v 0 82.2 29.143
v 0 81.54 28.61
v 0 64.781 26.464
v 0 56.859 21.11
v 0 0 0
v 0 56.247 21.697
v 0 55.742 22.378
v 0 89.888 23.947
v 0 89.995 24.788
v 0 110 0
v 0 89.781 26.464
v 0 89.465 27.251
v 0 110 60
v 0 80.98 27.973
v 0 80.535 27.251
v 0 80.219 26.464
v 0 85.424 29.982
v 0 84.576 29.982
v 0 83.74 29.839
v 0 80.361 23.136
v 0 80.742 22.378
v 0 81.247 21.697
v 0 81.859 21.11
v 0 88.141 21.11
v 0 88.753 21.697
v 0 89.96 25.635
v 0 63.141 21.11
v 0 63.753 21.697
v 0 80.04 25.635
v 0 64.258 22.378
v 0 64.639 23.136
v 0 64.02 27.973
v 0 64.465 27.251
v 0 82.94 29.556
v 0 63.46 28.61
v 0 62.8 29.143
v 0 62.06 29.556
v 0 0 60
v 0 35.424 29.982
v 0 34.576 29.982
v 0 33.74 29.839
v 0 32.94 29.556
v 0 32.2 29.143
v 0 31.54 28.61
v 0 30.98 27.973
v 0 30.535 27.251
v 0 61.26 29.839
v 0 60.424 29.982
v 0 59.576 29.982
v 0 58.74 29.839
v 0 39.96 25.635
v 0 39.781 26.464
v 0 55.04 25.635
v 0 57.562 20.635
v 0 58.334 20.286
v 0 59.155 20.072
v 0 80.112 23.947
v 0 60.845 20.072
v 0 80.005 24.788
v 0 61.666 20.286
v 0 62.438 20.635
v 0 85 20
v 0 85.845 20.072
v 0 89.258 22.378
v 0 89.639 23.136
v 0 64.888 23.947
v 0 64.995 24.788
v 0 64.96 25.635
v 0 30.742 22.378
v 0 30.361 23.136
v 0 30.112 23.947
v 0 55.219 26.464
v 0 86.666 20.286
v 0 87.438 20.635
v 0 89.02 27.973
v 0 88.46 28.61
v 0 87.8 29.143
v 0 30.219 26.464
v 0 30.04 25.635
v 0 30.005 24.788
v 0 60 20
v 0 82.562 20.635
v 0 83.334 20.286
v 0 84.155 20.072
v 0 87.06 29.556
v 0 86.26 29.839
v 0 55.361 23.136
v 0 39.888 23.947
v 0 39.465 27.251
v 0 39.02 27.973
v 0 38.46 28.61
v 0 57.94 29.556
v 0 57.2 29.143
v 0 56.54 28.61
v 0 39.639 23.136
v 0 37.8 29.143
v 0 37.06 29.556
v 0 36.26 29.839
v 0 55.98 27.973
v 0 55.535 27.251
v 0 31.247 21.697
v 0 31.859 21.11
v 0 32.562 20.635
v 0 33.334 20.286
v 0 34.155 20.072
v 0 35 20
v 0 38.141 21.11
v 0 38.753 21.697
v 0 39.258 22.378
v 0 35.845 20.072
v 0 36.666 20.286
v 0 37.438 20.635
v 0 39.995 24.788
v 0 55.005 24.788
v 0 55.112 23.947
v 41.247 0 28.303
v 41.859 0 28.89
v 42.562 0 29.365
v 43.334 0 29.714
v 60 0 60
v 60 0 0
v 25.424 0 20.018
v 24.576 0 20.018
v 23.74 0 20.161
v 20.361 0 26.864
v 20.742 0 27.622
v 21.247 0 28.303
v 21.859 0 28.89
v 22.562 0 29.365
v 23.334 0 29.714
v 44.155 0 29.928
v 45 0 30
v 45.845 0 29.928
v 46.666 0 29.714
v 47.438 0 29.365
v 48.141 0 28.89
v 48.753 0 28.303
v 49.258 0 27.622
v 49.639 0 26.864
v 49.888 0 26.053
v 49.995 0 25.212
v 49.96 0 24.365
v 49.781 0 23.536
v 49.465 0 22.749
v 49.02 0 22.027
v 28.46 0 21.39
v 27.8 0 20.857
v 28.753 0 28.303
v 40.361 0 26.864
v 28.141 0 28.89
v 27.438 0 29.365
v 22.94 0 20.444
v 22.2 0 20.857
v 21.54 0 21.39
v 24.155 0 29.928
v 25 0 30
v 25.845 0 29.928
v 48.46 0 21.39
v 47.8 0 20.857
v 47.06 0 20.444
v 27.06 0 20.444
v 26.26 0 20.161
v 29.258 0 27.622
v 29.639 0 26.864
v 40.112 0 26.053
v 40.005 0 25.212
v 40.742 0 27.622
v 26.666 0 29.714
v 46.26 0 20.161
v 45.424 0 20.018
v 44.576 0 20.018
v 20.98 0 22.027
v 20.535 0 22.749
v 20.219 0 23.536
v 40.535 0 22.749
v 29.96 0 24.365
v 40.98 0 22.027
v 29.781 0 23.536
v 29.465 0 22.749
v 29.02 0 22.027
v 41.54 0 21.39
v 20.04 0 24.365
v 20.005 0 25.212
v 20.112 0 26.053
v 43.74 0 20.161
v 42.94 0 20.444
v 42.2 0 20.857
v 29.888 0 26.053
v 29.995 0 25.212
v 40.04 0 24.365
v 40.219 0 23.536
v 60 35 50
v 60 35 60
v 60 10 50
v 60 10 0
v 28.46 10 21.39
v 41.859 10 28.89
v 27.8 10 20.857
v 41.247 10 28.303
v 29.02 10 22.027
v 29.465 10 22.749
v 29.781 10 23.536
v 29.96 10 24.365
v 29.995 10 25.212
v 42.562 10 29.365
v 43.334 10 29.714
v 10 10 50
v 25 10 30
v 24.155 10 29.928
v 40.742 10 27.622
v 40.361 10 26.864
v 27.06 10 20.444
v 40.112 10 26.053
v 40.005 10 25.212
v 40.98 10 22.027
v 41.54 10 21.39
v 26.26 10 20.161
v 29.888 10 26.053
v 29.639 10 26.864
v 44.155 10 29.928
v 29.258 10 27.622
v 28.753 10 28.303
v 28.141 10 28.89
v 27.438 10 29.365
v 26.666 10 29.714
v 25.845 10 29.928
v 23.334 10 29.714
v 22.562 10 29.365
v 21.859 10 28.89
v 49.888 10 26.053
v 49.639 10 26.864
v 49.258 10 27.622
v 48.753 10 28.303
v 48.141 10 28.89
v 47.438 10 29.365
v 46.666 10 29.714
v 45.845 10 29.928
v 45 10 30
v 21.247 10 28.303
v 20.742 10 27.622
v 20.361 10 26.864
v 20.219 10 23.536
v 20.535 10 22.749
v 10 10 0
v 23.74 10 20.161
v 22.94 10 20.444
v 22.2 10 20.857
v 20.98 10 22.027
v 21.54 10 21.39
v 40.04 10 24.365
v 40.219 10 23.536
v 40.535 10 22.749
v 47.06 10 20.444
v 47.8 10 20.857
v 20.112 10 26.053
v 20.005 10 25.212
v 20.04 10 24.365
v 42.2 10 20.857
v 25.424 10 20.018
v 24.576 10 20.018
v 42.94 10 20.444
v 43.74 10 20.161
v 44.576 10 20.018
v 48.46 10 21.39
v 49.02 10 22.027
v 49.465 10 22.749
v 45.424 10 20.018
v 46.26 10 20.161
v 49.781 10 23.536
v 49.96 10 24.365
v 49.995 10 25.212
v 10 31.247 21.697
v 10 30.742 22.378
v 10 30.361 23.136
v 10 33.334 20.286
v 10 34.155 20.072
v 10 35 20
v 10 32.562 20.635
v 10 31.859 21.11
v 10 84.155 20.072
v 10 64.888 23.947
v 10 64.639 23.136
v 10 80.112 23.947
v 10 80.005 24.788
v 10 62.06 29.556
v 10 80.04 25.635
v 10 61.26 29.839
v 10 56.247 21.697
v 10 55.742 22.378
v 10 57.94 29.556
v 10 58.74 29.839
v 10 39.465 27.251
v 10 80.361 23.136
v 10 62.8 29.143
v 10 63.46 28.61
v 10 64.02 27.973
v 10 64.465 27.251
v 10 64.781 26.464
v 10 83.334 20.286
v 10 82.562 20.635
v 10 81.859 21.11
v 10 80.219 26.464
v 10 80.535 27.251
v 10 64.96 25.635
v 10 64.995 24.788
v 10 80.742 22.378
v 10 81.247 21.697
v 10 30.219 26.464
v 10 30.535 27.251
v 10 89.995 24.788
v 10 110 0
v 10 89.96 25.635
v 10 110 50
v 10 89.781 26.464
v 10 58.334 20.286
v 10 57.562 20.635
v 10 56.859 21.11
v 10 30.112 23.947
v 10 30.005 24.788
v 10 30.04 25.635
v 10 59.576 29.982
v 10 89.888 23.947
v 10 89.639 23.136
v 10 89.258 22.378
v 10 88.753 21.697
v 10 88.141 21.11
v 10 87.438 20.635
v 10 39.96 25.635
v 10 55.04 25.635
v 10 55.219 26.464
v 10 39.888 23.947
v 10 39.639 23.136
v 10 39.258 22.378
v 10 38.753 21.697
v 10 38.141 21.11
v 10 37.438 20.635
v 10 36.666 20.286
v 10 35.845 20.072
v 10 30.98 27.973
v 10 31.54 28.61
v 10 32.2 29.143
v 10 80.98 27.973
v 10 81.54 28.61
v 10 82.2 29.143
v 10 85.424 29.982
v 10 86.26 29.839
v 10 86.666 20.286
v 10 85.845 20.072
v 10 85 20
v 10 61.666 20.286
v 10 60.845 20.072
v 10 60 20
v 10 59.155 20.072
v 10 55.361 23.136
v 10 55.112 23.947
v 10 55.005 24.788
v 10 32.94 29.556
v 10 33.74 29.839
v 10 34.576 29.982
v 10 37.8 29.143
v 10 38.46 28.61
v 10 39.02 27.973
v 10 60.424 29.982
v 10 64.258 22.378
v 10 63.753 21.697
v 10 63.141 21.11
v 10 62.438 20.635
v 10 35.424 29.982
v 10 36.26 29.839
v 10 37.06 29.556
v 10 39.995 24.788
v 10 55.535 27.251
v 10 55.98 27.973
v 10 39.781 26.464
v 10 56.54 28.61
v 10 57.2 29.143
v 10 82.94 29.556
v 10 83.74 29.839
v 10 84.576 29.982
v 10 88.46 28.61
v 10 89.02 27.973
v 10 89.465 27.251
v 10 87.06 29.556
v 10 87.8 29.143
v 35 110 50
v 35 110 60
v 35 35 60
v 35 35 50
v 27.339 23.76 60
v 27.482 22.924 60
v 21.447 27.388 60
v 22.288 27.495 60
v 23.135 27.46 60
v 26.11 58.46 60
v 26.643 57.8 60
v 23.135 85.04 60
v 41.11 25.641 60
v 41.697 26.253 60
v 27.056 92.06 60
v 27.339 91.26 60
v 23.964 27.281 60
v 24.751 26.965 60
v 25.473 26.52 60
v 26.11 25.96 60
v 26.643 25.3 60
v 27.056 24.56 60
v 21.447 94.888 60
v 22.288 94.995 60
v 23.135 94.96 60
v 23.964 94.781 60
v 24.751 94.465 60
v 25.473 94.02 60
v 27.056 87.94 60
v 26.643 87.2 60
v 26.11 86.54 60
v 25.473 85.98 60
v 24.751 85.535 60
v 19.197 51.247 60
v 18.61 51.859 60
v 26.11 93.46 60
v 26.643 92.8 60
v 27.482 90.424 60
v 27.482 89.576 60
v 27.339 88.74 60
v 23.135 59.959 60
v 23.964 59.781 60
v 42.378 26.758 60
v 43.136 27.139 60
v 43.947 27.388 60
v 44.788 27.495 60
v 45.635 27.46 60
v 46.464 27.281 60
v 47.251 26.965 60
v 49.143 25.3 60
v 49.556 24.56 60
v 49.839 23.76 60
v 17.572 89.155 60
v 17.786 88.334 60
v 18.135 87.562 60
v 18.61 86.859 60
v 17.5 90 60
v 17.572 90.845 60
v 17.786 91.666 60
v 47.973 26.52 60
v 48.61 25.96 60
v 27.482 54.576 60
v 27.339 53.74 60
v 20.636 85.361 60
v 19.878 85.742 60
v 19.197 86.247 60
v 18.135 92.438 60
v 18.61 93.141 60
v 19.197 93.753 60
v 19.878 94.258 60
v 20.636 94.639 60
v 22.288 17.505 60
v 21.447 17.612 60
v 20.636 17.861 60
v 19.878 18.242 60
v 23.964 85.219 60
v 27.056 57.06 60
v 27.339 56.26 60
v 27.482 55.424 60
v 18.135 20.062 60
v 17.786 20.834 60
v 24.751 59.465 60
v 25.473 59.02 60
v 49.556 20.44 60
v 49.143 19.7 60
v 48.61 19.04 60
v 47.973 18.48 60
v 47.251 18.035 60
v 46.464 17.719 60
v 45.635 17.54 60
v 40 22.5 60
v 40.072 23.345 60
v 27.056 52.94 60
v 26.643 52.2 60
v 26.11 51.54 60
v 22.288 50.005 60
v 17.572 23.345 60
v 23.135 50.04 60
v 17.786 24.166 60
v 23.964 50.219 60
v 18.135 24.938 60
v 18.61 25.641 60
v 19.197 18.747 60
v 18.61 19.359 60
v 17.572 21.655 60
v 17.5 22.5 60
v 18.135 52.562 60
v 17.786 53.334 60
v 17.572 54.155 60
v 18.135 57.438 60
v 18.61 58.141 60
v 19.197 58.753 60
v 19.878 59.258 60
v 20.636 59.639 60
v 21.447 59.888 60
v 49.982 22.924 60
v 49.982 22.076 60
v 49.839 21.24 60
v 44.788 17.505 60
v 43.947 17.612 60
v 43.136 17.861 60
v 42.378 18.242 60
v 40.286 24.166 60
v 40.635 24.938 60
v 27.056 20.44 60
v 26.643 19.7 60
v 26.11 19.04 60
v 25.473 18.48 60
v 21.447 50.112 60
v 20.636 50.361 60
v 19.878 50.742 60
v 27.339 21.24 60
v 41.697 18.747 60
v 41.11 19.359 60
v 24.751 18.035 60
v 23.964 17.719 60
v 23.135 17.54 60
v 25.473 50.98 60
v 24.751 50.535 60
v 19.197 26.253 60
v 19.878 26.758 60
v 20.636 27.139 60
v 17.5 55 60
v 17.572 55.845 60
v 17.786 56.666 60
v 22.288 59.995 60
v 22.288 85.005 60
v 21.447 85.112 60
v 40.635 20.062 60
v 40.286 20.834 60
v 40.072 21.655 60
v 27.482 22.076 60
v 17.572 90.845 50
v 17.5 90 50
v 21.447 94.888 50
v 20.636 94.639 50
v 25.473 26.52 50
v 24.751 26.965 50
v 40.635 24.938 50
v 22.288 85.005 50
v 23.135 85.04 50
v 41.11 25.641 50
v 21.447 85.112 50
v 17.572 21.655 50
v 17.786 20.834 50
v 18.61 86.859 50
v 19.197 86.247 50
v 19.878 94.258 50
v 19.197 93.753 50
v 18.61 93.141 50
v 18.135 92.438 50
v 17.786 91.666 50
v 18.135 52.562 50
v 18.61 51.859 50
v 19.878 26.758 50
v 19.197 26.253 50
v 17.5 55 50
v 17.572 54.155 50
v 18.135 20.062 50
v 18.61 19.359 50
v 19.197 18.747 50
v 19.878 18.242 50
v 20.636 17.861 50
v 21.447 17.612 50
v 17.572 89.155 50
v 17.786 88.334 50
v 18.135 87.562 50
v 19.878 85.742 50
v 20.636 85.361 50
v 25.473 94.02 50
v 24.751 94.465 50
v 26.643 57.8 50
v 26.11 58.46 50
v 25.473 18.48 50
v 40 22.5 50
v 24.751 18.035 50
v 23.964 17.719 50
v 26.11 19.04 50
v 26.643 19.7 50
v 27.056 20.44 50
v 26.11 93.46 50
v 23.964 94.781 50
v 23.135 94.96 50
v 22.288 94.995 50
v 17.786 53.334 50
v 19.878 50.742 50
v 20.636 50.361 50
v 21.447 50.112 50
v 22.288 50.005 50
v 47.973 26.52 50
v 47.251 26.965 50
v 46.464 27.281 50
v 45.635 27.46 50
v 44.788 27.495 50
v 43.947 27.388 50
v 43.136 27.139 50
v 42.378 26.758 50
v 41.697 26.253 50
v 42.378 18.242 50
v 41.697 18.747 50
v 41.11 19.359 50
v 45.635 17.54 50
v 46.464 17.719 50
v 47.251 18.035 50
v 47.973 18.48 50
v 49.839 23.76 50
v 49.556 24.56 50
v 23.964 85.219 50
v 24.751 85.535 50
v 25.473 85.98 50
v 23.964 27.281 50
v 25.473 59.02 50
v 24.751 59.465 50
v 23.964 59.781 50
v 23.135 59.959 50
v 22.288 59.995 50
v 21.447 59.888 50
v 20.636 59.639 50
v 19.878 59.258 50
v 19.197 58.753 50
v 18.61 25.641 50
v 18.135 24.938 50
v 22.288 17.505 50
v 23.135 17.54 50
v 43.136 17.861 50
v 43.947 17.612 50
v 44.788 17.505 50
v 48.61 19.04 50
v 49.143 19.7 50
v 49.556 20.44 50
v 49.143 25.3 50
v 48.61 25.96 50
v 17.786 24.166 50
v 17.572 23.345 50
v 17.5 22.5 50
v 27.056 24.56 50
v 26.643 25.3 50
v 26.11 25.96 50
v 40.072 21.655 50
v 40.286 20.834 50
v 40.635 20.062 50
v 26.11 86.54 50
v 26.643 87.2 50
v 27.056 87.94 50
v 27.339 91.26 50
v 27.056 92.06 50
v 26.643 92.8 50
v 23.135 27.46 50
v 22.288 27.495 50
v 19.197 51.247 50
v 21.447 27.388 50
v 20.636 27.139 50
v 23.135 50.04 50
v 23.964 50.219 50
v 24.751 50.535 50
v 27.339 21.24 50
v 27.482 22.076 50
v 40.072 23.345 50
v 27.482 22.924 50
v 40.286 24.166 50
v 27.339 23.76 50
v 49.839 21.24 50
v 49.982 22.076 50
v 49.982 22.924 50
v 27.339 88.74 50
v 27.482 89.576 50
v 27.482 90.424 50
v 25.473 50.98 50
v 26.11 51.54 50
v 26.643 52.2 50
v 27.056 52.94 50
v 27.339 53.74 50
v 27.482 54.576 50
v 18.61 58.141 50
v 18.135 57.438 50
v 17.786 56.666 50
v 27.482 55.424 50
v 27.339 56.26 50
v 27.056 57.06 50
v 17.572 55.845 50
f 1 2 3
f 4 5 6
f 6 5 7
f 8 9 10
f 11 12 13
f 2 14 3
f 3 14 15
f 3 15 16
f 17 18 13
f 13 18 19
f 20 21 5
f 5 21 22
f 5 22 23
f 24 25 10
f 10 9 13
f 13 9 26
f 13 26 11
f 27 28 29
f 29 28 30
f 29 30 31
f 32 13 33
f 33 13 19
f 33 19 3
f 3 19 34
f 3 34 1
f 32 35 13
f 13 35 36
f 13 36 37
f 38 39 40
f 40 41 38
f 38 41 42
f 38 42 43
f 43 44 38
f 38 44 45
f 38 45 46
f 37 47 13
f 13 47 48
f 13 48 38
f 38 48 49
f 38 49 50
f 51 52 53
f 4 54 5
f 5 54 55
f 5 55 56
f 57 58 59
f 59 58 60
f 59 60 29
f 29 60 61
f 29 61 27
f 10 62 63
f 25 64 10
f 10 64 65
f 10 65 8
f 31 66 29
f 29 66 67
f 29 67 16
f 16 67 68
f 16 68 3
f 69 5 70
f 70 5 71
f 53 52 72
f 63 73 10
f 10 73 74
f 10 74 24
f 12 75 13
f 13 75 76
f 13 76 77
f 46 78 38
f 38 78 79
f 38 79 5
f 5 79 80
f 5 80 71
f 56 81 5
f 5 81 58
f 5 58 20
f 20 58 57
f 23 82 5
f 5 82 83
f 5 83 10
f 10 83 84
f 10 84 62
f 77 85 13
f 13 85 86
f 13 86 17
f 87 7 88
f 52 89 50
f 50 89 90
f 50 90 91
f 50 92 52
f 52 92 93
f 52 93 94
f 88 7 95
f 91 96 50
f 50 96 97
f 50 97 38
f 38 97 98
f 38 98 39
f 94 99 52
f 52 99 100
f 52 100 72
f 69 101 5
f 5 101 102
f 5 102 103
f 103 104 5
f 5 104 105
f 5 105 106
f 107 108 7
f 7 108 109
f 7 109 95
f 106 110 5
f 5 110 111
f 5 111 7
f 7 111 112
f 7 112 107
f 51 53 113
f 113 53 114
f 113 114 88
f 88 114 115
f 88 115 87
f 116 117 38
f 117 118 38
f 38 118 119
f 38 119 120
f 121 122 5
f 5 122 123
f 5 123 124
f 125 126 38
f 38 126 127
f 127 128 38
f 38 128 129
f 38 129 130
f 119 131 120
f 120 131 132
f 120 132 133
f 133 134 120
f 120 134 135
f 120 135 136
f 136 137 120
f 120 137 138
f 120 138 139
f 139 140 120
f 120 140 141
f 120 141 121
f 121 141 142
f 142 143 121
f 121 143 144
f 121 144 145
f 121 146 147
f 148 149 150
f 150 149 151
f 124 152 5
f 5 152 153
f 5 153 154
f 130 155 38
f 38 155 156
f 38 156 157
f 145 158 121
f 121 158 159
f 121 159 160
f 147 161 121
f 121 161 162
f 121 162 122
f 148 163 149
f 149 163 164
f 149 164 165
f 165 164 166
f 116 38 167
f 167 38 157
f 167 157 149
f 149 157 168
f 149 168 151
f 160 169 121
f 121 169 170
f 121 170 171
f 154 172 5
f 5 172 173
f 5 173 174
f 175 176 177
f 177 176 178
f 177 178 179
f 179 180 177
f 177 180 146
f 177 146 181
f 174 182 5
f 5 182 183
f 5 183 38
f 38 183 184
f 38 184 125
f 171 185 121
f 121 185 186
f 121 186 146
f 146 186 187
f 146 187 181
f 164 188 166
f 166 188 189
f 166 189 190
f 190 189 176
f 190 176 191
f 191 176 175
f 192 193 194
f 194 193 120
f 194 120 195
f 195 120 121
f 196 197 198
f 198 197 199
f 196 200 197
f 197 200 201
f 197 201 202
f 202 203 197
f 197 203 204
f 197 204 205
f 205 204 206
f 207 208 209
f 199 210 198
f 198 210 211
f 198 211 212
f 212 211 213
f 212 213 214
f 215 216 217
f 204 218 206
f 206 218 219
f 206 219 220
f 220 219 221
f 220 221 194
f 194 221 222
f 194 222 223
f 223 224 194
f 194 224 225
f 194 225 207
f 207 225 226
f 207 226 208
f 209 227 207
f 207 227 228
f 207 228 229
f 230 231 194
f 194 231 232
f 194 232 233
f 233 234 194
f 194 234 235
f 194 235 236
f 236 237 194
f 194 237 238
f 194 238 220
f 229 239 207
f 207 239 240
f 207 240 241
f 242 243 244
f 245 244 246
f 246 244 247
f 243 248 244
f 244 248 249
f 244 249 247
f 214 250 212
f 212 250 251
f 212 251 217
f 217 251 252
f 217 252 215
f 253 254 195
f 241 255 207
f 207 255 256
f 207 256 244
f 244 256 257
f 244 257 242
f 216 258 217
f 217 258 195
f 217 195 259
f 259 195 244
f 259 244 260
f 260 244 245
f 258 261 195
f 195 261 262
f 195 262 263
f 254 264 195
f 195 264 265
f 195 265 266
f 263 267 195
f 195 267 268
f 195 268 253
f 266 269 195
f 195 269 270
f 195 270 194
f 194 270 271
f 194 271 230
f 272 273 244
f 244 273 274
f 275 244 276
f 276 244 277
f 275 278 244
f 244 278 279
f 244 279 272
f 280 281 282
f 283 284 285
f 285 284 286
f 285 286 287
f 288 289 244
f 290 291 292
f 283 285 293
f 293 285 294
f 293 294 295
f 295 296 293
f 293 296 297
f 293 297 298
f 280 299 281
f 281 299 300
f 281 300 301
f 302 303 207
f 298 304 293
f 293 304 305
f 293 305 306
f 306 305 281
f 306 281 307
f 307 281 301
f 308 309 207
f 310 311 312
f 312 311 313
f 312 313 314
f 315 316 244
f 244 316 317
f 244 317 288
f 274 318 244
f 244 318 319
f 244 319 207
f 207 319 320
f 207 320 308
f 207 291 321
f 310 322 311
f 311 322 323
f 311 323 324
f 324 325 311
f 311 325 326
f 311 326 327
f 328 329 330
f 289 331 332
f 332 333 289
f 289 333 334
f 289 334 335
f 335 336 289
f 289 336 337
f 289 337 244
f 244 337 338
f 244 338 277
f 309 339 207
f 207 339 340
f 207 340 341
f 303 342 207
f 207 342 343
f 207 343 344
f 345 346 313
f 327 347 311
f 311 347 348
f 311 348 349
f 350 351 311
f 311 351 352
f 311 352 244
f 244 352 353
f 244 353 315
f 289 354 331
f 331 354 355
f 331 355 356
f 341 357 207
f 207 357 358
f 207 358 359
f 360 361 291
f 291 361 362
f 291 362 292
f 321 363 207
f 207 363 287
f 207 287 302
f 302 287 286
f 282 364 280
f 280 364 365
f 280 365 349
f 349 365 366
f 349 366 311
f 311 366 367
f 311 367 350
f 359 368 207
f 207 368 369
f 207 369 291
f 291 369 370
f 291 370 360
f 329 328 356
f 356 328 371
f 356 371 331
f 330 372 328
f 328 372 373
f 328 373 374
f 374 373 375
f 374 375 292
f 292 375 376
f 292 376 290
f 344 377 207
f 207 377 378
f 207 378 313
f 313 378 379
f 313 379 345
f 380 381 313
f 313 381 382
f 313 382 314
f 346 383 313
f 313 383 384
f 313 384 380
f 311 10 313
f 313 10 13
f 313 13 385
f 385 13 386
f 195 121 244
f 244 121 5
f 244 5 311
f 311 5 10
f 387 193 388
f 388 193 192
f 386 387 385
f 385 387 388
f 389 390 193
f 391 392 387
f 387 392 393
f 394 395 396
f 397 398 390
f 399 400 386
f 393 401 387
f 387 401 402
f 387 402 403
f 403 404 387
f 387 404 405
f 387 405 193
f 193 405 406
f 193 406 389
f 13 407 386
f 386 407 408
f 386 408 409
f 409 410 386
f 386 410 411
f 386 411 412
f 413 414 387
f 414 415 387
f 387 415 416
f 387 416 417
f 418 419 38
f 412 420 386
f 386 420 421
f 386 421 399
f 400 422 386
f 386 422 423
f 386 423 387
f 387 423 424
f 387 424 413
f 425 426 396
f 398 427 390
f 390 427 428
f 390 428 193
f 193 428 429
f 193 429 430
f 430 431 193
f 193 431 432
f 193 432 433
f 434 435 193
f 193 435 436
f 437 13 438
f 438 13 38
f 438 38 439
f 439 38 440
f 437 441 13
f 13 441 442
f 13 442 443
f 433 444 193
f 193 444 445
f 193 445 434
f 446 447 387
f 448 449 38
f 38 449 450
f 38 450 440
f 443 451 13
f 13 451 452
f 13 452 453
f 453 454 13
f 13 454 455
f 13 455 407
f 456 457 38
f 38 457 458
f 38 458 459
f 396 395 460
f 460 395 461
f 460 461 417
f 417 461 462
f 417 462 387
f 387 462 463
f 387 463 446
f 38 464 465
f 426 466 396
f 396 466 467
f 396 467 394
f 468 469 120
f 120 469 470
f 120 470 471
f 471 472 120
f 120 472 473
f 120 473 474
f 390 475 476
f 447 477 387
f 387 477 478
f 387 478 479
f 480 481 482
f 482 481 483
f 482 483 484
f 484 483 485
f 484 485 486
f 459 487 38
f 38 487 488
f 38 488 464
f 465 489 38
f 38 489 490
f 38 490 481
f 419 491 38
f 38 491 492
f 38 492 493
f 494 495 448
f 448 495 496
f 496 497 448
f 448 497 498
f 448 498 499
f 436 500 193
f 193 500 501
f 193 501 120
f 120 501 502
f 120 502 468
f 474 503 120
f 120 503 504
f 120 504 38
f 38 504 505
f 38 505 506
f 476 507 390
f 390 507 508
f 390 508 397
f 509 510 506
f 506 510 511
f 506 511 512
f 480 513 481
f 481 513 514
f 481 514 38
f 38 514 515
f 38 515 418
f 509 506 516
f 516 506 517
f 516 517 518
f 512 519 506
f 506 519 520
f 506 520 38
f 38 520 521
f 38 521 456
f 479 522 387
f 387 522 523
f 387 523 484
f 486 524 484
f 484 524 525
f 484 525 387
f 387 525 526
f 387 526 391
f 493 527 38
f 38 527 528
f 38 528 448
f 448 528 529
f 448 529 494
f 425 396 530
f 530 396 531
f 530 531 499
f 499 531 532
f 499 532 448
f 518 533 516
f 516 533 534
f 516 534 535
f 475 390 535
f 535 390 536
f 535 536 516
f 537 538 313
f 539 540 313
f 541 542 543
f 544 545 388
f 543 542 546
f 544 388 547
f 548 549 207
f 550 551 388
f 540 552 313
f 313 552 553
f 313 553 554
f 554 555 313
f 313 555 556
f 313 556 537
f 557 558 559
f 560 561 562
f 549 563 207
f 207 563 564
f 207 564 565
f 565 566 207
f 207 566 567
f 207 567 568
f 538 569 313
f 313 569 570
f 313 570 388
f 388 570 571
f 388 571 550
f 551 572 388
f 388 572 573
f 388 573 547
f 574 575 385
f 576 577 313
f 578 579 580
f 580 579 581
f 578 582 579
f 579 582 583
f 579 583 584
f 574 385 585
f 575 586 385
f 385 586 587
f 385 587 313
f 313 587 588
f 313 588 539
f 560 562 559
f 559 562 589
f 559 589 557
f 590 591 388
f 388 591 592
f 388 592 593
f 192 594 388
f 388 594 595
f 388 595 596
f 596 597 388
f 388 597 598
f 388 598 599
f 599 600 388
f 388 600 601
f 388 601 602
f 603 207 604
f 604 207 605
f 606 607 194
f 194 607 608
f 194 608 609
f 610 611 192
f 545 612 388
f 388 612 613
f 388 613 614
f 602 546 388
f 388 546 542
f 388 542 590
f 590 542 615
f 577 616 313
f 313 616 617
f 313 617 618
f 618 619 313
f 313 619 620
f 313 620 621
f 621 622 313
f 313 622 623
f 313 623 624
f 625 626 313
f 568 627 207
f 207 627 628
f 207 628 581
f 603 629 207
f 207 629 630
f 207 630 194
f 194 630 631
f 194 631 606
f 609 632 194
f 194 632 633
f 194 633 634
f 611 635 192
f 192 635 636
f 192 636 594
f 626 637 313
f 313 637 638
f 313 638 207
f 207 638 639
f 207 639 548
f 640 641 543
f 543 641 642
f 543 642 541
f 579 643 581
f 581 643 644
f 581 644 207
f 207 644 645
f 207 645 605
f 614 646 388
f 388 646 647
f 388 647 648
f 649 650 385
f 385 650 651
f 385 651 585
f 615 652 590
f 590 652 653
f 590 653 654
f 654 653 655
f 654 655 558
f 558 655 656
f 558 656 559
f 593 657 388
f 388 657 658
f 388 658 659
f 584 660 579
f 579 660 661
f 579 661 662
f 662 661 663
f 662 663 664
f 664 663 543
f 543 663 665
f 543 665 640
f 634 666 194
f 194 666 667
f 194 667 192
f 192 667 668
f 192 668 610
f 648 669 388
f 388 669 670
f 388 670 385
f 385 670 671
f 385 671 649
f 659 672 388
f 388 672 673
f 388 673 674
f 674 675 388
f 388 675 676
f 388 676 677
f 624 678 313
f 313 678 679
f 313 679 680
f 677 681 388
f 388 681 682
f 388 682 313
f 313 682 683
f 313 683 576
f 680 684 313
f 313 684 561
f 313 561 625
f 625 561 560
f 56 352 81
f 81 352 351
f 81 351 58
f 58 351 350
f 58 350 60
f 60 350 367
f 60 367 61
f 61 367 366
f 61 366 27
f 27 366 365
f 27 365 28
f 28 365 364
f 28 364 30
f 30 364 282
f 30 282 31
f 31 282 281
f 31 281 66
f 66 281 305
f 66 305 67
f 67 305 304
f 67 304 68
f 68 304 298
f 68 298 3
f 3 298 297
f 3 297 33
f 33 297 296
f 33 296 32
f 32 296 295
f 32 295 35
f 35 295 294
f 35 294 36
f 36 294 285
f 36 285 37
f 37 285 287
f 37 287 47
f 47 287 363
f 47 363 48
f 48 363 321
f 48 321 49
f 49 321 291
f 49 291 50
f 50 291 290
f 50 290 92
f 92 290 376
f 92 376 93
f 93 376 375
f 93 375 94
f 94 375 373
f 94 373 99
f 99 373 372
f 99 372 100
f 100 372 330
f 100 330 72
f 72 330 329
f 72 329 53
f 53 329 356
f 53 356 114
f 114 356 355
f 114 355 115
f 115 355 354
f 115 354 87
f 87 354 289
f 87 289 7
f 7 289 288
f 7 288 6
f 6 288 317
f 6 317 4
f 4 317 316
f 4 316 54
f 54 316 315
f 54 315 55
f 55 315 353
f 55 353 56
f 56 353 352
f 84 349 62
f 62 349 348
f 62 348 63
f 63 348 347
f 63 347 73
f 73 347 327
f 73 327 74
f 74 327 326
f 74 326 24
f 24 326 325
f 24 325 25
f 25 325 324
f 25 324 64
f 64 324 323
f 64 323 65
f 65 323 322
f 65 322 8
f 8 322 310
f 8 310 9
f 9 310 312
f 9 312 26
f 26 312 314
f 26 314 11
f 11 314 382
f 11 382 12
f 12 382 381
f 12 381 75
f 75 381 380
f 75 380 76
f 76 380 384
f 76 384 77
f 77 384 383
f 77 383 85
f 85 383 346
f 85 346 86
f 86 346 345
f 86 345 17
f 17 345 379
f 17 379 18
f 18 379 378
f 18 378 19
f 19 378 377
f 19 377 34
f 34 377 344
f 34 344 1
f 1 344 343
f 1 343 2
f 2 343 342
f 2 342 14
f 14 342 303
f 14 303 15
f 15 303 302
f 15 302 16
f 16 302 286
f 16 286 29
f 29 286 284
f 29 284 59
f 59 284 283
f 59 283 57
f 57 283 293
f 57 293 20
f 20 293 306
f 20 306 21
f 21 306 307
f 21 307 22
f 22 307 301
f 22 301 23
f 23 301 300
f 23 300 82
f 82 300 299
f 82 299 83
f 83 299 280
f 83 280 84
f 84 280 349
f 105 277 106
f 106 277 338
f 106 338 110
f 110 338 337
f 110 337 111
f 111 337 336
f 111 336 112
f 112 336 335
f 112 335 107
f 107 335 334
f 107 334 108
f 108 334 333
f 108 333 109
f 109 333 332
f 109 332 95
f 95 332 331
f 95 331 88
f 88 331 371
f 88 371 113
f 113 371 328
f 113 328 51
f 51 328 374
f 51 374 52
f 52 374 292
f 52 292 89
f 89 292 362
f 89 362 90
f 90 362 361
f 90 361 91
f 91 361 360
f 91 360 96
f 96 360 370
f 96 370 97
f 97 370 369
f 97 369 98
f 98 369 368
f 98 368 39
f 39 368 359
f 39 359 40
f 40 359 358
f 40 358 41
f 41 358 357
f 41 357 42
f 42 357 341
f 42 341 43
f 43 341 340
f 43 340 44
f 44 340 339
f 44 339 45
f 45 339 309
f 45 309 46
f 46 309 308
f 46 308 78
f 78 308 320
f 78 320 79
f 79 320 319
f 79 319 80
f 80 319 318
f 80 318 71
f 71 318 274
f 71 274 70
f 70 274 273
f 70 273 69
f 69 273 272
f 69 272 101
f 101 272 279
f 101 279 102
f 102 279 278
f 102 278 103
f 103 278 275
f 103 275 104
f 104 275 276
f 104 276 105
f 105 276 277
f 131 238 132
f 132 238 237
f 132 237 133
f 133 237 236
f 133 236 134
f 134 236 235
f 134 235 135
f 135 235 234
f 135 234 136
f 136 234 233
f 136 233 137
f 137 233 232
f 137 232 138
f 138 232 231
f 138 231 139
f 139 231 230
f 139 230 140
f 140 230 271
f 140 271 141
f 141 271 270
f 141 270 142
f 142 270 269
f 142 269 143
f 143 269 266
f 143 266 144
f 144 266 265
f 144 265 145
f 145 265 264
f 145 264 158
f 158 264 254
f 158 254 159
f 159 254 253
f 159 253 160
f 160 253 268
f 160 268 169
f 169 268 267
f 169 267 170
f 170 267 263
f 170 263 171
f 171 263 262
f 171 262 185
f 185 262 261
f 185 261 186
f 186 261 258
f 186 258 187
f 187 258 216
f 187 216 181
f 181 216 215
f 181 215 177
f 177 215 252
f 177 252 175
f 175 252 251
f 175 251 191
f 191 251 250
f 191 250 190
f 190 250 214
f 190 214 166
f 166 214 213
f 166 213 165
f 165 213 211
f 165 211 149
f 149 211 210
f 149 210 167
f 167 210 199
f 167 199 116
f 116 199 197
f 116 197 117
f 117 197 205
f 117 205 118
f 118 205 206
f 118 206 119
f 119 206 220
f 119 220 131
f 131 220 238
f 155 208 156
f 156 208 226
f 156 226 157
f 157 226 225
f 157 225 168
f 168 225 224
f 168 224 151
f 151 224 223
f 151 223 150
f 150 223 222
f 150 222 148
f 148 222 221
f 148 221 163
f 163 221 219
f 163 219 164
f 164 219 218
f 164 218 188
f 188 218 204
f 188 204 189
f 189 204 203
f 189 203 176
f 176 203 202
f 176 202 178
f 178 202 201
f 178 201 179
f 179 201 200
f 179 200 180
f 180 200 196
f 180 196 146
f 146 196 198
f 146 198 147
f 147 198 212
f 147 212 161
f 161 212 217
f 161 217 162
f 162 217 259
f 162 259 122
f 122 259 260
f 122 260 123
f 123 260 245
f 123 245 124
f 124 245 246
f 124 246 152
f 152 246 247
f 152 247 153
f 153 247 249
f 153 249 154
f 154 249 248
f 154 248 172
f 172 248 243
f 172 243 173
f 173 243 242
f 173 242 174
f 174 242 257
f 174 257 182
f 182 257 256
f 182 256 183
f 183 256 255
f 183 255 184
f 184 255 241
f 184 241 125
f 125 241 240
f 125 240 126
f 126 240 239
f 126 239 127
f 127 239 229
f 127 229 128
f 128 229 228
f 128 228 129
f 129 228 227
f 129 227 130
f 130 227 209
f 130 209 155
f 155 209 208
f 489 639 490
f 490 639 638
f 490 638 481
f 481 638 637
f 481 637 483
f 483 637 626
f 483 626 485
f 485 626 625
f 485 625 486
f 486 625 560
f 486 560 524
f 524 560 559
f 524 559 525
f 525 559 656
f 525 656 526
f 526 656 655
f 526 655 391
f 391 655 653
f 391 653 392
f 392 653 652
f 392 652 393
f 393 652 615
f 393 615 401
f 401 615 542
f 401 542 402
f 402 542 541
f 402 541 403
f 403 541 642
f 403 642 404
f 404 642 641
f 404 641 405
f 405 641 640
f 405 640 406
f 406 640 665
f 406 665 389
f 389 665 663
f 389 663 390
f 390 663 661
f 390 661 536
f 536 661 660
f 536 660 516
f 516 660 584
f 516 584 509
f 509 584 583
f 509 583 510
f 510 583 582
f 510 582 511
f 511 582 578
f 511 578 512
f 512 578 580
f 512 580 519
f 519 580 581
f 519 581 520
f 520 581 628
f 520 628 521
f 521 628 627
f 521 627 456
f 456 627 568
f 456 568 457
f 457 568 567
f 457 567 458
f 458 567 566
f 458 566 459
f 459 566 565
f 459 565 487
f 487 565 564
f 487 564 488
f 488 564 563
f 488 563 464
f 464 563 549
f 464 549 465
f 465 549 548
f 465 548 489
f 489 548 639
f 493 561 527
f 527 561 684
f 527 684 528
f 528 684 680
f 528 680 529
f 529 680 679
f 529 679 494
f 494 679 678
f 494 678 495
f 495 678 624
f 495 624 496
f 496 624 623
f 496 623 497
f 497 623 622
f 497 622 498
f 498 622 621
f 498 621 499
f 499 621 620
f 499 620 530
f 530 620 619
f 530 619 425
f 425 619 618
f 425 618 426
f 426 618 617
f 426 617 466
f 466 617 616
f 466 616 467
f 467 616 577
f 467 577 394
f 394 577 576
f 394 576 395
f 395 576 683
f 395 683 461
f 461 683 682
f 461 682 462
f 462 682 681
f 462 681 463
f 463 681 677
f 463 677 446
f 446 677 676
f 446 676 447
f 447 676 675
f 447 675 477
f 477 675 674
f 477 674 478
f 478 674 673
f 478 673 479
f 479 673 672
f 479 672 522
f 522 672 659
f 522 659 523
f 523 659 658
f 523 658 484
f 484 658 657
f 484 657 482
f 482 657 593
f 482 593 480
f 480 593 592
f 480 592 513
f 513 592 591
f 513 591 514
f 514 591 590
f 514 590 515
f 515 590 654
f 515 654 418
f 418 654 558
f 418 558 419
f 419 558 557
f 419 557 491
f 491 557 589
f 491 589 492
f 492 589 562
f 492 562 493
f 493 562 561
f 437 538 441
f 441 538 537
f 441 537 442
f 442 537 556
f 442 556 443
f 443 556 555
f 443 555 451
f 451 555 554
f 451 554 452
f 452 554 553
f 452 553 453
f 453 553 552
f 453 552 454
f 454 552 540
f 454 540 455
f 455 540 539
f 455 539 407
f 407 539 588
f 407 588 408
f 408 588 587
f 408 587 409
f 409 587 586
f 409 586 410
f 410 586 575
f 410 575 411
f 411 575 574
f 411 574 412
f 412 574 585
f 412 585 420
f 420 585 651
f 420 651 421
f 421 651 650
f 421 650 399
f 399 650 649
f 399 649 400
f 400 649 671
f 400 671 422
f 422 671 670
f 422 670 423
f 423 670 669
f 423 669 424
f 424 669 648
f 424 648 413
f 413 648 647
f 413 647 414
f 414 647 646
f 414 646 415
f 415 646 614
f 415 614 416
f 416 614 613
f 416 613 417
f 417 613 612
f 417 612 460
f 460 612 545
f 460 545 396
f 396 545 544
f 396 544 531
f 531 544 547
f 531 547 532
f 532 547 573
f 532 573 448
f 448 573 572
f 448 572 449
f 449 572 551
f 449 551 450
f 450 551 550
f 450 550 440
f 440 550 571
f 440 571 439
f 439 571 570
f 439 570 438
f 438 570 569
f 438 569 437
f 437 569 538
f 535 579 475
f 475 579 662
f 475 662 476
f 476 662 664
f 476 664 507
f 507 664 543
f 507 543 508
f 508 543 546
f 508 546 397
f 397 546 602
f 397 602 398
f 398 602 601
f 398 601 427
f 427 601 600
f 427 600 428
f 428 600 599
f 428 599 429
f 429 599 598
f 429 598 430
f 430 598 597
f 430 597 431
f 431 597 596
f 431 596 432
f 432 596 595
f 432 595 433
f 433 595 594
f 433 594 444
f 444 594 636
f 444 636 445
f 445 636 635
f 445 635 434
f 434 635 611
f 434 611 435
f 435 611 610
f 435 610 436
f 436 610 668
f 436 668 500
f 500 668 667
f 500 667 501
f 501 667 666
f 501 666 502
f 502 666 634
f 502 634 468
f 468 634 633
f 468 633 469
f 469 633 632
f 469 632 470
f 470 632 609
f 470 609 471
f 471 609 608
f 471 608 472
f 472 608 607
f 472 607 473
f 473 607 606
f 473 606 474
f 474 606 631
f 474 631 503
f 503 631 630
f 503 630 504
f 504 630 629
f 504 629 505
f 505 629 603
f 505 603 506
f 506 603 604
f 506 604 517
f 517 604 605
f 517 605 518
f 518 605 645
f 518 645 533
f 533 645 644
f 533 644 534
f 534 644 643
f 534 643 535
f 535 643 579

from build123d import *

# Parameters (mm, degrees)
BOSS_EXTRUDE1_DEPTH = 50
BOSS_EXTRUDE2_DEPTH = 10
SKETCH4_R           = 5
CUT_EXTRUDE1_DEPTH  = 10
SKETCH5_R           = 5
CUT_EXTRUDE2_DEPTH  = 10
SKETCH6_R           = 5
CUT_EXTRUDE3_DEPTH  = 10


with BuildPart() as part:
    # Sketch1 → Boss-Extrude1 (new body)
    with BuildSketch(Plane.XY):
        Polygon((0, 110), (10, 110), (10, 10), (60, 10), (60, 0), (0, 0), align=None)
    extrude(amount=BOSS_EXTRUDE1_DEPTH)

    # Sketch2 → Boss-Extrude2 (add)
    with BuildSketch(Plane.XY.offset(50)):
        Polygon((0, 110), (35, 110), (35, 35), (60, 35), (60, 0), (0, 0), align=None)
    extrude(amount=BOSS_EXTRUDE2_DEPTH)

    # Sketch4 → Cut-Extrude1 (cut)
    with BuildSketch(Plane(origin=(10, 0, 0), x_dir=(0, 0, -1), z_dir=(1, 0, 0))):
        with Locations((-25, 60)):
            Circle(SKETCH4_R)
        with Locations((-25, 85)):
            Circle(SKETCH4_R)
        with Locations((-25, 35)):
            Circle(SKETCH4_R)
    extrude(amount=-CUT_EXTRUDE1_DEPTH, mode=Mode.SUBTRACT)

    # Sketch5 → Cut-Extrude2 (cut)
    with BuildSketch(Plane(origin=(0, 10, 0), x_dir=(1, 0, 0), z_dir=(0, 1, 0))):
        with Locations(Location((45, -25, 0), (0, 0, 270))):
            Circle(SKETCH5_R)
        with Locations(Location((25, -25, 0), (0, 0, 270))):
            Circle(SKETCH5_R)
    extrude(amount=-CUT_EXTRUDE2_DEPTH, mode=Mode.SUBTRACT)

    # Sketch6 → Cut-Extrude3 (cut)
    with BuildSketch(Plane(origin=(0, 0, 50), x_dir=(-1, 0, 0), z_dir=(0, 0, -1))):
        with Locations((-22.5, 22.5)):
            Circle(SKETCH6_R)
        with Locations((-22.5, 55)):
            Circle(SKETCH6_R)
        with Locations((-22.5, 90)):
            Circle(SKETCH6_R)
        with Locations((-45, 22.5)):
            Circle(SKETCH6_R)
    extrude(amount=-CUT_EXTRUDE3_DEPTH, mode=Mode.SUBTRACT)


solid = part.part
